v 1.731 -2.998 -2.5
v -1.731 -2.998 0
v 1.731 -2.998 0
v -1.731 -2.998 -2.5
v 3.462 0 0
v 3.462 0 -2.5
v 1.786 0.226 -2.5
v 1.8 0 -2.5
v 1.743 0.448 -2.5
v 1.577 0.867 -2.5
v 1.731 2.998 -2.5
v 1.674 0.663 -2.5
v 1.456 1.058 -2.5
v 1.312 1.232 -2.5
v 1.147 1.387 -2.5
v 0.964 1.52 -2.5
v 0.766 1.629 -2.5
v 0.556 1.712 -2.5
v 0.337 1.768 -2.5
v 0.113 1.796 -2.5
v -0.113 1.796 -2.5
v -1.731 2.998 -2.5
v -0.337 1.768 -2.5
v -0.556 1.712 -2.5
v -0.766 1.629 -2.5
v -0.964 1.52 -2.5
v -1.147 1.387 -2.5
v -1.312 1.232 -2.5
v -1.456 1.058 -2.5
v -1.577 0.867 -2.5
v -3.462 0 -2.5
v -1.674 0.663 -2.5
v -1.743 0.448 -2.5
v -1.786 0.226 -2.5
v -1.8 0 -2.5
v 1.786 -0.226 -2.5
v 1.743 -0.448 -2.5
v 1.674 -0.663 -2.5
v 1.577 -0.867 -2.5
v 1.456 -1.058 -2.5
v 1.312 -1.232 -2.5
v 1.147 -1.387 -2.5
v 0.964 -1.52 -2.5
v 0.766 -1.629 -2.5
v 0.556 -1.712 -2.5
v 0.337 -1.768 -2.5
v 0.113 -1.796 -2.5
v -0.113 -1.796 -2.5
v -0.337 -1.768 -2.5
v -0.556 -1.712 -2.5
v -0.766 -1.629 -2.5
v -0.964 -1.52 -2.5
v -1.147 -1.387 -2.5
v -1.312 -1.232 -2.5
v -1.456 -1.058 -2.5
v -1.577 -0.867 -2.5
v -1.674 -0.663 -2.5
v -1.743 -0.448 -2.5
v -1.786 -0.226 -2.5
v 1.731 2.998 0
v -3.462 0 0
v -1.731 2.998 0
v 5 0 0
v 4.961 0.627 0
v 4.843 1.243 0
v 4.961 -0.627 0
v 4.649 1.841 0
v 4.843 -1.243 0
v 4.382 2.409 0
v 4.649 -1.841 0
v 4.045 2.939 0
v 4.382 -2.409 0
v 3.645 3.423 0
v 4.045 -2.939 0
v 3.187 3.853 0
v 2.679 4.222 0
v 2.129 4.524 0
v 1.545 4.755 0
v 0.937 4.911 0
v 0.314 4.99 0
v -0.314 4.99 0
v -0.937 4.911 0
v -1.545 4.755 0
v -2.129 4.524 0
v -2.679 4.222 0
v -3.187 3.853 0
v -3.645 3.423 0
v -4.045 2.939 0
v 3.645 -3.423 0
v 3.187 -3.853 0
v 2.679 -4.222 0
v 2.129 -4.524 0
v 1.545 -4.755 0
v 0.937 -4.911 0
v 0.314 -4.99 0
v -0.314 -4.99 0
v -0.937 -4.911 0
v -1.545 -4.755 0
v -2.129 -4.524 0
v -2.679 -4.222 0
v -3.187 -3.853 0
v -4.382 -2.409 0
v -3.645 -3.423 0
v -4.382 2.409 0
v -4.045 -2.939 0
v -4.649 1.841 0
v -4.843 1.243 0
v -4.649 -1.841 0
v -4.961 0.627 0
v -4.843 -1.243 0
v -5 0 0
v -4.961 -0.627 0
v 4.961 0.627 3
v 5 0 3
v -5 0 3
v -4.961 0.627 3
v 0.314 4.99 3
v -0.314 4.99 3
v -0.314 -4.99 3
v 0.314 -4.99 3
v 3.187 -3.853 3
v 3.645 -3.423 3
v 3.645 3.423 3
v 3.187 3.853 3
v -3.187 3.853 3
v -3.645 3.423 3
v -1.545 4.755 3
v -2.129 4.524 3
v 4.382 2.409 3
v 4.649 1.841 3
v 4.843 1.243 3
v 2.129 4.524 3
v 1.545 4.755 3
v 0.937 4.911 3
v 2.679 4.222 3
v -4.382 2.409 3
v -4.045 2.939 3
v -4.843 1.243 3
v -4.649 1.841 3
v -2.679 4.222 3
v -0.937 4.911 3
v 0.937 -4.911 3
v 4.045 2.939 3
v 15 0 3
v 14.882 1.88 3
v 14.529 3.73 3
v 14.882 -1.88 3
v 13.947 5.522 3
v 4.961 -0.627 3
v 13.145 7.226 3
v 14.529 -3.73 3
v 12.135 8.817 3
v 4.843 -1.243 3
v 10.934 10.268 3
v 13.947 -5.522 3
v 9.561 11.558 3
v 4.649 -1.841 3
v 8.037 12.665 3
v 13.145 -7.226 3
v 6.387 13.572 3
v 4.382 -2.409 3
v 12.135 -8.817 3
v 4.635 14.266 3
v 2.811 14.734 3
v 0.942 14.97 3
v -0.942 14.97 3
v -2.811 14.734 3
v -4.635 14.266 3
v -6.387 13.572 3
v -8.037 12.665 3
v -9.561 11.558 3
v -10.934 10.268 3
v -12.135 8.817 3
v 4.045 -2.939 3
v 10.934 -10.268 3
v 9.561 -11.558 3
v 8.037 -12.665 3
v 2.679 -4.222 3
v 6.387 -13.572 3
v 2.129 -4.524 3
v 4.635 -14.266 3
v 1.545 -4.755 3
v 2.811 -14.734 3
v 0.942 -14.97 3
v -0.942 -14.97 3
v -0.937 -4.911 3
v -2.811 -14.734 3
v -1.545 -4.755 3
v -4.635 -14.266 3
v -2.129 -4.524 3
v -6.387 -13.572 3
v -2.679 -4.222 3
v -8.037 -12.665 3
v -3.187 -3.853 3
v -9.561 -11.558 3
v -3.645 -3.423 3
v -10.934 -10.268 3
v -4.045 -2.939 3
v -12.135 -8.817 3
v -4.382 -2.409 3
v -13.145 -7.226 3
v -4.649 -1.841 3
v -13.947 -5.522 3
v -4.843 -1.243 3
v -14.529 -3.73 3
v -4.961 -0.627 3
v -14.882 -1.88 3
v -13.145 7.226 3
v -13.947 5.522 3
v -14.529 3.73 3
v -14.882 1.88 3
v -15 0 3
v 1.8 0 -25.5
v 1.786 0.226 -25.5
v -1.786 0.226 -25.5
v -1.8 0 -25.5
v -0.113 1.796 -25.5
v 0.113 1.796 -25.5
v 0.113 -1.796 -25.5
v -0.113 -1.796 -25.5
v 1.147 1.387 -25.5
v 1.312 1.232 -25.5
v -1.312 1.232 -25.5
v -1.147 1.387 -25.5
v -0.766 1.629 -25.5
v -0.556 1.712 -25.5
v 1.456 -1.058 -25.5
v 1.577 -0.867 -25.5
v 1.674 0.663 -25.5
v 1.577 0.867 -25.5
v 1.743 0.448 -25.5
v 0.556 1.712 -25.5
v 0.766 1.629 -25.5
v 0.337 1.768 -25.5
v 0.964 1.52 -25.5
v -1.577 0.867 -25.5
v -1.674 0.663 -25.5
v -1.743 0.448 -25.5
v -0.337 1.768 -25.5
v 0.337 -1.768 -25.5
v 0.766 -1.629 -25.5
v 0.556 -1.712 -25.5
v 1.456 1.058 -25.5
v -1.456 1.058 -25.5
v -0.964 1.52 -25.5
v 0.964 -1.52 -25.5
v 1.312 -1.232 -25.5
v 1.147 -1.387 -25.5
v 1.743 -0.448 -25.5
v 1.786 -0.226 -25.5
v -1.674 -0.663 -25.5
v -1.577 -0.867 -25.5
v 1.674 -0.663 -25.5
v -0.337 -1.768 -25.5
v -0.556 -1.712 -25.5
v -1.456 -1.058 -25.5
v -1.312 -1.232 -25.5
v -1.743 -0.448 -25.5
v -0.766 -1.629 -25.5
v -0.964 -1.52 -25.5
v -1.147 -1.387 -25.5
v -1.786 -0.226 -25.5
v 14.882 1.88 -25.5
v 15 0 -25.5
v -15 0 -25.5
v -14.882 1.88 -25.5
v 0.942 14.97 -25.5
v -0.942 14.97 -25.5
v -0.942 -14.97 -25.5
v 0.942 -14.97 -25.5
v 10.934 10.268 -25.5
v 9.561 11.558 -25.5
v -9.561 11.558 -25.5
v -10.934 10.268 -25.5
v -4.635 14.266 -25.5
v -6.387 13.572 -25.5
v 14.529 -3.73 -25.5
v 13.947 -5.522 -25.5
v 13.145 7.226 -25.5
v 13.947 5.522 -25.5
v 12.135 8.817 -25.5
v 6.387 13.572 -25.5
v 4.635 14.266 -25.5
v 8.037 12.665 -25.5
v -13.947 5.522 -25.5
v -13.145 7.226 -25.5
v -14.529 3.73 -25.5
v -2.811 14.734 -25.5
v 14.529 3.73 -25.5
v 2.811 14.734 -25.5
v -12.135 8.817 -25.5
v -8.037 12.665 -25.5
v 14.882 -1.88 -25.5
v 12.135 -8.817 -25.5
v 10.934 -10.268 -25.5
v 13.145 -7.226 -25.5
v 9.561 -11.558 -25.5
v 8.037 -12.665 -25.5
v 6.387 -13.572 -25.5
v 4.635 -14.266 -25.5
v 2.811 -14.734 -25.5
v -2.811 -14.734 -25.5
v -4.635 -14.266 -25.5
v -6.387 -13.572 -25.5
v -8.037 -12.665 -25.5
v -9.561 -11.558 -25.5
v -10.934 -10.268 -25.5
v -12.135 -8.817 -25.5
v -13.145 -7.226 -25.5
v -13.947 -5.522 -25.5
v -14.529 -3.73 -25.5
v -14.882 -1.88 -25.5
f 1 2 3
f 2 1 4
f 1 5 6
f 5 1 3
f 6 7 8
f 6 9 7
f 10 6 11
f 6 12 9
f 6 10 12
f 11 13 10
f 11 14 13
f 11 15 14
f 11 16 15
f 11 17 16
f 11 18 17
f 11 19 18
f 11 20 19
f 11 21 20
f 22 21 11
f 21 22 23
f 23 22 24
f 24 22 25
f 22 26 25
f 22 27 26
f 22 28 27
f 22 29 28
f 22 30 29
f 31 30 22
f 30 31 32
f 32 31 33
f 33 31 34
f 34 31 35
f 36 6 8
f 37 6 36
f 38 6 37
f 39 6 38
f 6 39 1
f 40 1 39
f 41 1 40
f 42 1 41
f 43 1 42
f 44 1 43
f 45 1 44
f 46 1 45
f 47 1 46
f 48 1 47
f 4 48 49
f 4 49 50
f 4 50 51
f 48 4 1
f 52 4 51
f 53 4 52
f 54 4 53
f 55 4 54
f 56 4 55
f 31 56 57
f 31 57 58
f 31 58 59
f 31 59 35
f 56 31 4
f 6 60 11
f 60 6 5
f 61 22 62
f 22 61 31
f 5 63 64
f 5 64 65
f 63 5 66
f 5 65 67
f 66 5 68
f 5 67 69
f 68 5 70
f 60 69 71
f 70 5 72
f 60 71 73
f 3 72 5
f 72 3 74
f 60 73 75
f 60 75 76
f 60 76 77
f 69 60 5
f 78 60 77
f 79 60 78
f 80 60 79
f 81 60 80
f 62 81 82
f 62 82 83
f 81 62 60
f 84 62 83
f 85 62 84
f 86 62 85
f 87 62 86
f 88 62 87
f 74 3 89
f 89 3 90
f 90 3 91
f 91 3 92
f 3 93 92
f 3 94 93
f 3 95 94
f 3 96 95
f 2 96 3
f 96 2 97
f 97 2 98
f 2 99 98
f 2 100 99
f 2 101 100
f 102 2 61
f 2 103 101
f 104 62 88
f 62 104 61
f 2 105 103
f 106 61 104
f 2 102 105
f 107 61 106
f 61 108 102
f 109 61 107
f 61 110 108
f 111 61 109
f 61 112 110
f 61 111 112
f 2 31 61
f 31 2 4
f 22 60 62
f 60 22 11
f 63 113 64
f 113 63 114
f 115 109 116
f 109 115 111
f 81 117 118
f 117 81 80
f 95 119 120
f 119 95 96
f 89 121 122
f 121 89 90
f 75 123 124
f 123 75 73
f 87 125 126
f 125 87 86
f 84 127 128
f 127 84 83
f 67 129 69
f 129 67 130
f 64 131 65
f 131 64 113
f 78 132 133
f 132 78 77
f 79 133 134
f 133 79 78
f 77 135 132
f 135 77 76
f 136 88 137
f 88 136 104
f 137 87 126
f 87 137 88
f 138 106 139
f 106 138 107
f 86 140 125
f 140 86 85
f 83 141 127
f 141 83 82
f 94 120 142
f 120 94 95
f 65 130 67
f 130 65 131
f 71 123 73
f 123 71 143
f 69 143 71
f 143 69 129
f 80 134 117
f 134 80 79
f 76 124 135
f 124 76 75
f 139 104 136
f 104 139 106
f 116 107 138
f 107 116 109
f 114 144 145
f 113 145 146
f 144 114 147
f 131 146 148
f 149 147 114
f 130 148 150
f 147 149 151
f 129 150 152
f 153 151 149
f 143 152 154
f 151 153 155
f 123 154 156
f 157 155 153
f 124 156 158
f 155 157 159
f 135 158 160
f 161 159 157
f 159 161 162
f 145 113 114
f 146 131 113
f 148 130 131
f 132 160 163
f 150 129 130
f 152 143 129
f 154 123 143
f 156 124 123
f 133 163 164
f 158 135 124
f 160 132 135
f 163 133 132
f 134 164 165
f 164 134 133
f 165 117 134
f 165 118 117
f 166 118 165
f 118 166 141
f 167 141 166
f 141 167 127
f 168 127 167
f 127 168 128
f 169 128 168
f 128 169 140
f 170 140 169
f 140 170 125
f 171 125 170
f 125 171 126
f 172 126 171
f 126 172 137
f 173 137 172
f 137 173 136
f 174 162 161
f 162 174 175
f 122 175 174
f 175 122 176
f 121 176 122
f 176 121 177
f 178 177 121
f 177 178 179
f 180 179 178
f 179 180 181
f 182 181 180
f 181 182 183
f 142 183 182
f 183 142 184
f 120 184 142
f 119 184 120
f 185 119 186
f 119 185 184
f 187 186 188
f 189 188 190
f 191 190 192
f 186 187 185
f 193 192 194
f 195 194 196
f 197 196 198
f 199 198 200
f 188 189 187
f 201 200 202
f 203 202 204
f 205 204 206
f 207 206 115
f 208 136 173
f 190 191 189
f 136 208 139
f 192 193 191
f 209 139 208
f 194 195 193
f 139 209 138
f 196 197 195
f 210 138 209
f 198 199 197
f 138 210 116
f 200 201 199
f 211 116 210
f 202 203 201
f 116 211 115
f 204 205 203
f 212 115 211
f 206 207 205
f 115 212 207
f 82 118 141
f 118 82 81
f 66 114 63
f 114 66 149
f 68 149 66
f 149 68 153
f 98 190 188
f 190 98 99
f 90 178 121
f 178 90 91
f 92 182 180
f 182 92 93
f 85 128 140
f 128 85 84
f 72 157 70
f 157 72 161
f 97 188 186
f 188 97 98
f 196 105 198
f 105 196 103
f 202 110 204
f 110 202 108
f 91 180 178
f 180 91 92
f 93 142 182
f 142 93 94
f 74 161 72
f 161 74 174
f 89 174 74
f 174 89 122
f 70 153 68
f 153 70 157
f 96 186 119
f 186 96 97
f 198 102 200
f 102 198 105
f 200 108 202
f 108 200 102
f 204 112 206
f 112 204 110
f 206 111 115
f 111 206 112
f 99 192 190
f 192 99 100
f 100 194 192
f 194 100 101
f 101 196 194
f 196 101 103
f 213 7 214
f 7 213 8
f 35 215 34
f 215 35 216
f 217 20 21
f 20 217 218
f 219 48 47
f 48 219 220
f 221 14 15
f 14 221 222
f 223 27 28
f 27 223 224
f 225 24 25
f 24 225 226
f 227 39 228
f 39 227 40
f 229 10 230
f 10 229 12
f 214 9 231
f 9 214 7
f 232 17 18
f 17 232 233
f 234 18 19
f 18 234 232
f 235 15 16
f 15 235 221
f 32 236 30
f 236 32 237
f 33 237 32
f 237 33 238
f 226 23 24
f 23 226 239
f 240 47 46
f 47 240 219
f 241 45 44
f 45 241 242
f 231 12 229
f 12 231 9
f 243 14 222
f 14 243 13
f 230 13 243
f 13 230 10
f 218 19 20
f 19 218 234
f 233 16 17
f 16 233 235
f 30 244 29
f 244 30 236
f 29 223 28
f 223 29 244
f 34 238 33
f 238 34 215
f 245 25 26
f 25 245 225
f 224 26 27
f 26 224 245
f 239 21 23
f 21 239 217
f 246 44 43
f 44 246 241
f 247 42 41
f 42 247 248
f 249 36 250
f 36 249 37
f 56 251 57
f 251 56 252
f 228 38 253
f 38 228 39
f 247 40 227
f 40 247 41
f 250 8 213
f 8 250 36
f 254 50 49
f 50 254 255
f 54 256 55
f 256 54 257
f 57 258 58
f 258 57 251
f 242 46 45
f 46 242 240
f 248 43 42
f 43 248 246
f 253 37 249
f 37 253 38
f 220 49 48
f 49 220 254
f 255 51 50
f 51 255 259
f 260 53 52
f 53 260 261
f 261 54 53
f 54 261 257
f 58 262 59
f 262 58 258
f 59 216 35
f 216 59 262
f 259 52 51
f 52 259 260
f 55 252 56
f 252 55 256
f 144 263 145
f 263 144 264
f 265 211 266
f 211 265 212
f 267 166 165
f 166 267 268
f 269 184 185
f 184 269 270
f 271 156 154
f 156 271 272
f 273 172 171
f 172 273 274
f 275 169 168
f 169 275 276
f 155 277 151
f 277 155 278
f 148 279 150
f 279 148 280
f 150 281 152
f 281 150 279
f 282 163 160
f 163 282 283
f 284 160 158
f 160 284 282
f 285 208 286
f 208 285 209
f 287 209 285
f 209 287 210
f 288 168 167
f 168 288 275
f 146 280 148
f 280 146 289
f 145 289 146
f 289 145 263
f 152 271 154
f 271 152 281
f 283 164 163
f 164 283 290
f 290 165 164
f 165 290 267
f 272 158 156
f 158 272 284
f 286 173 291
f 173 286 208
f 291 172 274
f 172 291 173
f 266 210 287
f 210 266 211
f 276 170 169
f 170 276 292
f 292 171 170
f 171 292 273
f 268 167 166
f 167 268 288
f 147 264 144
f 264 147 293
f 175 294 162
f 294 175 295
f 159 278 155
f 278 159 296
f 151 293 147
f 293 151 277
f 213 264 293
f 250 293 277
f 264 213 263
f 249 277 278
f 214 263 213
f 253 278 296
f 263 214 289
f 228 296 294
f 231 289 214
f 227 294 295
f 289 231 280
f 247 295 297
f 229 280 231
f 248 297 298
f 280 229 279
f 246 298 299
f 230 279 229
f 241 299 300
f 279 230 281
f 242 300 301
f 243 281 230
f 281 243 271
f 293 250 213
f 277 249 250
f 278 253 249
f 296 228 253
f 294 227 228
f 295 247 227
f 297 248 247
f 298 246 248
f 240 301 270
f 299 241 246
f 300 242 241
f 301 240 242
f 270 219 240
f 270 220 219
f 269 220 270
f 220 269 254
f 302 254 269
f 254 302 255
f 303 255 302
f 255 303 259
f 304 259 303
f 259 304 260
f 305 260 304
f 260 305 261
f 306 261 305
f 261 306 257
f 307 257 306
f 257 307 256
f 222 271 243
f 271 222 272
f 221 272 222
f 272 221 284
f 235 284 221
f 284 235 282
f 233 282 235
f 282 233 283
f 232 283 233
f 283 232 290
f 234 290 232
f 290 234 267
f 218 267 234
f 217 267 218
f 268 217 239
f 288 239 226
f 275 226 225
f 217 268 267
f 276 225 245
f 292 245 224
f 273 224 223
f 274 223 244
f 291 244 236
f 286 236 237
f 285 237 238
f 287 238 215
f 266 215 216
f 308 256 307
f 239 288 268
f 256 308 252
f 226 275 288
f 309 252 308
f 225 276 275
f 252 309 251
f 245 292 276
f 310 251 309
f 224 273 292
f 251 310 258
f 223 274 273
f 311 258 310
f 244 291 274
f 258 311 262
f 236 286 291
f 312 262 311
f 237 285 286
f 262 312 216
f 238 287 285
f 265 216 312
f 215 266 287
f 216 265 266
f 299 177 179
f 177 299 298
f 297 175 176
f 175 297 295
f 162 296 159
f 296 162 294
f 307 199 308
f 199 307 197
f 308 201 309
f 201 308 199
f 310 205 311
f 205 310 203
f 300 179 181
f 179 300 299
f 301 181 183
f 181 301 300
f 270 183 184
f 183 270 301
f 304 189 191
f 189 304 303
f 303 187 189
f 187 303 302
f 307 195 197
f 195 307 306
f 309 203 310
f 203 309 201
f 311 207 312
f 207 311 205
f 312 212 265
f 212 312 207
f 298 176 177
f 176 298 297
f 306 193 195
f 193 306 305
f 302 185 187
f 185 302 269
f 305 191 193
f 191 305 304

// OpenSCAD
$fn = 50;

difference() {
	union() {
		translate(v = [0, 0, -25.5]) {
			cylinder(h = 28.5, r = 15.0);
		}
	}
	union() {
		translate(v = [0, 0, 0]) {
			rotate(a = [0, 0, 0]) {
				difference() {
					union() {
						translate(v = [0, 0, -2.5]) {
							linear_extrude(height = 2.5) {
								polygon(points = [[3.4619999999999997, 0.0], [1.7310000000000003, 2.9981799479017264], [-1.7309999999999992, 2.9981799479017264], [-3.4619999999999997, 4.2397272186481365e-16], [-1.7310000000000014, -2.998179947901726], [1.7309999999999977, -2.9981799479017277]]);
							}
						}
					}
					union();
				}
			}
		}
		#cylinder(h = 3, r = 5.0);
		#translate(v = [0, 0, -100.0]) {
			cylinder(h = 200, r = 1.8);
		}
	}
}
